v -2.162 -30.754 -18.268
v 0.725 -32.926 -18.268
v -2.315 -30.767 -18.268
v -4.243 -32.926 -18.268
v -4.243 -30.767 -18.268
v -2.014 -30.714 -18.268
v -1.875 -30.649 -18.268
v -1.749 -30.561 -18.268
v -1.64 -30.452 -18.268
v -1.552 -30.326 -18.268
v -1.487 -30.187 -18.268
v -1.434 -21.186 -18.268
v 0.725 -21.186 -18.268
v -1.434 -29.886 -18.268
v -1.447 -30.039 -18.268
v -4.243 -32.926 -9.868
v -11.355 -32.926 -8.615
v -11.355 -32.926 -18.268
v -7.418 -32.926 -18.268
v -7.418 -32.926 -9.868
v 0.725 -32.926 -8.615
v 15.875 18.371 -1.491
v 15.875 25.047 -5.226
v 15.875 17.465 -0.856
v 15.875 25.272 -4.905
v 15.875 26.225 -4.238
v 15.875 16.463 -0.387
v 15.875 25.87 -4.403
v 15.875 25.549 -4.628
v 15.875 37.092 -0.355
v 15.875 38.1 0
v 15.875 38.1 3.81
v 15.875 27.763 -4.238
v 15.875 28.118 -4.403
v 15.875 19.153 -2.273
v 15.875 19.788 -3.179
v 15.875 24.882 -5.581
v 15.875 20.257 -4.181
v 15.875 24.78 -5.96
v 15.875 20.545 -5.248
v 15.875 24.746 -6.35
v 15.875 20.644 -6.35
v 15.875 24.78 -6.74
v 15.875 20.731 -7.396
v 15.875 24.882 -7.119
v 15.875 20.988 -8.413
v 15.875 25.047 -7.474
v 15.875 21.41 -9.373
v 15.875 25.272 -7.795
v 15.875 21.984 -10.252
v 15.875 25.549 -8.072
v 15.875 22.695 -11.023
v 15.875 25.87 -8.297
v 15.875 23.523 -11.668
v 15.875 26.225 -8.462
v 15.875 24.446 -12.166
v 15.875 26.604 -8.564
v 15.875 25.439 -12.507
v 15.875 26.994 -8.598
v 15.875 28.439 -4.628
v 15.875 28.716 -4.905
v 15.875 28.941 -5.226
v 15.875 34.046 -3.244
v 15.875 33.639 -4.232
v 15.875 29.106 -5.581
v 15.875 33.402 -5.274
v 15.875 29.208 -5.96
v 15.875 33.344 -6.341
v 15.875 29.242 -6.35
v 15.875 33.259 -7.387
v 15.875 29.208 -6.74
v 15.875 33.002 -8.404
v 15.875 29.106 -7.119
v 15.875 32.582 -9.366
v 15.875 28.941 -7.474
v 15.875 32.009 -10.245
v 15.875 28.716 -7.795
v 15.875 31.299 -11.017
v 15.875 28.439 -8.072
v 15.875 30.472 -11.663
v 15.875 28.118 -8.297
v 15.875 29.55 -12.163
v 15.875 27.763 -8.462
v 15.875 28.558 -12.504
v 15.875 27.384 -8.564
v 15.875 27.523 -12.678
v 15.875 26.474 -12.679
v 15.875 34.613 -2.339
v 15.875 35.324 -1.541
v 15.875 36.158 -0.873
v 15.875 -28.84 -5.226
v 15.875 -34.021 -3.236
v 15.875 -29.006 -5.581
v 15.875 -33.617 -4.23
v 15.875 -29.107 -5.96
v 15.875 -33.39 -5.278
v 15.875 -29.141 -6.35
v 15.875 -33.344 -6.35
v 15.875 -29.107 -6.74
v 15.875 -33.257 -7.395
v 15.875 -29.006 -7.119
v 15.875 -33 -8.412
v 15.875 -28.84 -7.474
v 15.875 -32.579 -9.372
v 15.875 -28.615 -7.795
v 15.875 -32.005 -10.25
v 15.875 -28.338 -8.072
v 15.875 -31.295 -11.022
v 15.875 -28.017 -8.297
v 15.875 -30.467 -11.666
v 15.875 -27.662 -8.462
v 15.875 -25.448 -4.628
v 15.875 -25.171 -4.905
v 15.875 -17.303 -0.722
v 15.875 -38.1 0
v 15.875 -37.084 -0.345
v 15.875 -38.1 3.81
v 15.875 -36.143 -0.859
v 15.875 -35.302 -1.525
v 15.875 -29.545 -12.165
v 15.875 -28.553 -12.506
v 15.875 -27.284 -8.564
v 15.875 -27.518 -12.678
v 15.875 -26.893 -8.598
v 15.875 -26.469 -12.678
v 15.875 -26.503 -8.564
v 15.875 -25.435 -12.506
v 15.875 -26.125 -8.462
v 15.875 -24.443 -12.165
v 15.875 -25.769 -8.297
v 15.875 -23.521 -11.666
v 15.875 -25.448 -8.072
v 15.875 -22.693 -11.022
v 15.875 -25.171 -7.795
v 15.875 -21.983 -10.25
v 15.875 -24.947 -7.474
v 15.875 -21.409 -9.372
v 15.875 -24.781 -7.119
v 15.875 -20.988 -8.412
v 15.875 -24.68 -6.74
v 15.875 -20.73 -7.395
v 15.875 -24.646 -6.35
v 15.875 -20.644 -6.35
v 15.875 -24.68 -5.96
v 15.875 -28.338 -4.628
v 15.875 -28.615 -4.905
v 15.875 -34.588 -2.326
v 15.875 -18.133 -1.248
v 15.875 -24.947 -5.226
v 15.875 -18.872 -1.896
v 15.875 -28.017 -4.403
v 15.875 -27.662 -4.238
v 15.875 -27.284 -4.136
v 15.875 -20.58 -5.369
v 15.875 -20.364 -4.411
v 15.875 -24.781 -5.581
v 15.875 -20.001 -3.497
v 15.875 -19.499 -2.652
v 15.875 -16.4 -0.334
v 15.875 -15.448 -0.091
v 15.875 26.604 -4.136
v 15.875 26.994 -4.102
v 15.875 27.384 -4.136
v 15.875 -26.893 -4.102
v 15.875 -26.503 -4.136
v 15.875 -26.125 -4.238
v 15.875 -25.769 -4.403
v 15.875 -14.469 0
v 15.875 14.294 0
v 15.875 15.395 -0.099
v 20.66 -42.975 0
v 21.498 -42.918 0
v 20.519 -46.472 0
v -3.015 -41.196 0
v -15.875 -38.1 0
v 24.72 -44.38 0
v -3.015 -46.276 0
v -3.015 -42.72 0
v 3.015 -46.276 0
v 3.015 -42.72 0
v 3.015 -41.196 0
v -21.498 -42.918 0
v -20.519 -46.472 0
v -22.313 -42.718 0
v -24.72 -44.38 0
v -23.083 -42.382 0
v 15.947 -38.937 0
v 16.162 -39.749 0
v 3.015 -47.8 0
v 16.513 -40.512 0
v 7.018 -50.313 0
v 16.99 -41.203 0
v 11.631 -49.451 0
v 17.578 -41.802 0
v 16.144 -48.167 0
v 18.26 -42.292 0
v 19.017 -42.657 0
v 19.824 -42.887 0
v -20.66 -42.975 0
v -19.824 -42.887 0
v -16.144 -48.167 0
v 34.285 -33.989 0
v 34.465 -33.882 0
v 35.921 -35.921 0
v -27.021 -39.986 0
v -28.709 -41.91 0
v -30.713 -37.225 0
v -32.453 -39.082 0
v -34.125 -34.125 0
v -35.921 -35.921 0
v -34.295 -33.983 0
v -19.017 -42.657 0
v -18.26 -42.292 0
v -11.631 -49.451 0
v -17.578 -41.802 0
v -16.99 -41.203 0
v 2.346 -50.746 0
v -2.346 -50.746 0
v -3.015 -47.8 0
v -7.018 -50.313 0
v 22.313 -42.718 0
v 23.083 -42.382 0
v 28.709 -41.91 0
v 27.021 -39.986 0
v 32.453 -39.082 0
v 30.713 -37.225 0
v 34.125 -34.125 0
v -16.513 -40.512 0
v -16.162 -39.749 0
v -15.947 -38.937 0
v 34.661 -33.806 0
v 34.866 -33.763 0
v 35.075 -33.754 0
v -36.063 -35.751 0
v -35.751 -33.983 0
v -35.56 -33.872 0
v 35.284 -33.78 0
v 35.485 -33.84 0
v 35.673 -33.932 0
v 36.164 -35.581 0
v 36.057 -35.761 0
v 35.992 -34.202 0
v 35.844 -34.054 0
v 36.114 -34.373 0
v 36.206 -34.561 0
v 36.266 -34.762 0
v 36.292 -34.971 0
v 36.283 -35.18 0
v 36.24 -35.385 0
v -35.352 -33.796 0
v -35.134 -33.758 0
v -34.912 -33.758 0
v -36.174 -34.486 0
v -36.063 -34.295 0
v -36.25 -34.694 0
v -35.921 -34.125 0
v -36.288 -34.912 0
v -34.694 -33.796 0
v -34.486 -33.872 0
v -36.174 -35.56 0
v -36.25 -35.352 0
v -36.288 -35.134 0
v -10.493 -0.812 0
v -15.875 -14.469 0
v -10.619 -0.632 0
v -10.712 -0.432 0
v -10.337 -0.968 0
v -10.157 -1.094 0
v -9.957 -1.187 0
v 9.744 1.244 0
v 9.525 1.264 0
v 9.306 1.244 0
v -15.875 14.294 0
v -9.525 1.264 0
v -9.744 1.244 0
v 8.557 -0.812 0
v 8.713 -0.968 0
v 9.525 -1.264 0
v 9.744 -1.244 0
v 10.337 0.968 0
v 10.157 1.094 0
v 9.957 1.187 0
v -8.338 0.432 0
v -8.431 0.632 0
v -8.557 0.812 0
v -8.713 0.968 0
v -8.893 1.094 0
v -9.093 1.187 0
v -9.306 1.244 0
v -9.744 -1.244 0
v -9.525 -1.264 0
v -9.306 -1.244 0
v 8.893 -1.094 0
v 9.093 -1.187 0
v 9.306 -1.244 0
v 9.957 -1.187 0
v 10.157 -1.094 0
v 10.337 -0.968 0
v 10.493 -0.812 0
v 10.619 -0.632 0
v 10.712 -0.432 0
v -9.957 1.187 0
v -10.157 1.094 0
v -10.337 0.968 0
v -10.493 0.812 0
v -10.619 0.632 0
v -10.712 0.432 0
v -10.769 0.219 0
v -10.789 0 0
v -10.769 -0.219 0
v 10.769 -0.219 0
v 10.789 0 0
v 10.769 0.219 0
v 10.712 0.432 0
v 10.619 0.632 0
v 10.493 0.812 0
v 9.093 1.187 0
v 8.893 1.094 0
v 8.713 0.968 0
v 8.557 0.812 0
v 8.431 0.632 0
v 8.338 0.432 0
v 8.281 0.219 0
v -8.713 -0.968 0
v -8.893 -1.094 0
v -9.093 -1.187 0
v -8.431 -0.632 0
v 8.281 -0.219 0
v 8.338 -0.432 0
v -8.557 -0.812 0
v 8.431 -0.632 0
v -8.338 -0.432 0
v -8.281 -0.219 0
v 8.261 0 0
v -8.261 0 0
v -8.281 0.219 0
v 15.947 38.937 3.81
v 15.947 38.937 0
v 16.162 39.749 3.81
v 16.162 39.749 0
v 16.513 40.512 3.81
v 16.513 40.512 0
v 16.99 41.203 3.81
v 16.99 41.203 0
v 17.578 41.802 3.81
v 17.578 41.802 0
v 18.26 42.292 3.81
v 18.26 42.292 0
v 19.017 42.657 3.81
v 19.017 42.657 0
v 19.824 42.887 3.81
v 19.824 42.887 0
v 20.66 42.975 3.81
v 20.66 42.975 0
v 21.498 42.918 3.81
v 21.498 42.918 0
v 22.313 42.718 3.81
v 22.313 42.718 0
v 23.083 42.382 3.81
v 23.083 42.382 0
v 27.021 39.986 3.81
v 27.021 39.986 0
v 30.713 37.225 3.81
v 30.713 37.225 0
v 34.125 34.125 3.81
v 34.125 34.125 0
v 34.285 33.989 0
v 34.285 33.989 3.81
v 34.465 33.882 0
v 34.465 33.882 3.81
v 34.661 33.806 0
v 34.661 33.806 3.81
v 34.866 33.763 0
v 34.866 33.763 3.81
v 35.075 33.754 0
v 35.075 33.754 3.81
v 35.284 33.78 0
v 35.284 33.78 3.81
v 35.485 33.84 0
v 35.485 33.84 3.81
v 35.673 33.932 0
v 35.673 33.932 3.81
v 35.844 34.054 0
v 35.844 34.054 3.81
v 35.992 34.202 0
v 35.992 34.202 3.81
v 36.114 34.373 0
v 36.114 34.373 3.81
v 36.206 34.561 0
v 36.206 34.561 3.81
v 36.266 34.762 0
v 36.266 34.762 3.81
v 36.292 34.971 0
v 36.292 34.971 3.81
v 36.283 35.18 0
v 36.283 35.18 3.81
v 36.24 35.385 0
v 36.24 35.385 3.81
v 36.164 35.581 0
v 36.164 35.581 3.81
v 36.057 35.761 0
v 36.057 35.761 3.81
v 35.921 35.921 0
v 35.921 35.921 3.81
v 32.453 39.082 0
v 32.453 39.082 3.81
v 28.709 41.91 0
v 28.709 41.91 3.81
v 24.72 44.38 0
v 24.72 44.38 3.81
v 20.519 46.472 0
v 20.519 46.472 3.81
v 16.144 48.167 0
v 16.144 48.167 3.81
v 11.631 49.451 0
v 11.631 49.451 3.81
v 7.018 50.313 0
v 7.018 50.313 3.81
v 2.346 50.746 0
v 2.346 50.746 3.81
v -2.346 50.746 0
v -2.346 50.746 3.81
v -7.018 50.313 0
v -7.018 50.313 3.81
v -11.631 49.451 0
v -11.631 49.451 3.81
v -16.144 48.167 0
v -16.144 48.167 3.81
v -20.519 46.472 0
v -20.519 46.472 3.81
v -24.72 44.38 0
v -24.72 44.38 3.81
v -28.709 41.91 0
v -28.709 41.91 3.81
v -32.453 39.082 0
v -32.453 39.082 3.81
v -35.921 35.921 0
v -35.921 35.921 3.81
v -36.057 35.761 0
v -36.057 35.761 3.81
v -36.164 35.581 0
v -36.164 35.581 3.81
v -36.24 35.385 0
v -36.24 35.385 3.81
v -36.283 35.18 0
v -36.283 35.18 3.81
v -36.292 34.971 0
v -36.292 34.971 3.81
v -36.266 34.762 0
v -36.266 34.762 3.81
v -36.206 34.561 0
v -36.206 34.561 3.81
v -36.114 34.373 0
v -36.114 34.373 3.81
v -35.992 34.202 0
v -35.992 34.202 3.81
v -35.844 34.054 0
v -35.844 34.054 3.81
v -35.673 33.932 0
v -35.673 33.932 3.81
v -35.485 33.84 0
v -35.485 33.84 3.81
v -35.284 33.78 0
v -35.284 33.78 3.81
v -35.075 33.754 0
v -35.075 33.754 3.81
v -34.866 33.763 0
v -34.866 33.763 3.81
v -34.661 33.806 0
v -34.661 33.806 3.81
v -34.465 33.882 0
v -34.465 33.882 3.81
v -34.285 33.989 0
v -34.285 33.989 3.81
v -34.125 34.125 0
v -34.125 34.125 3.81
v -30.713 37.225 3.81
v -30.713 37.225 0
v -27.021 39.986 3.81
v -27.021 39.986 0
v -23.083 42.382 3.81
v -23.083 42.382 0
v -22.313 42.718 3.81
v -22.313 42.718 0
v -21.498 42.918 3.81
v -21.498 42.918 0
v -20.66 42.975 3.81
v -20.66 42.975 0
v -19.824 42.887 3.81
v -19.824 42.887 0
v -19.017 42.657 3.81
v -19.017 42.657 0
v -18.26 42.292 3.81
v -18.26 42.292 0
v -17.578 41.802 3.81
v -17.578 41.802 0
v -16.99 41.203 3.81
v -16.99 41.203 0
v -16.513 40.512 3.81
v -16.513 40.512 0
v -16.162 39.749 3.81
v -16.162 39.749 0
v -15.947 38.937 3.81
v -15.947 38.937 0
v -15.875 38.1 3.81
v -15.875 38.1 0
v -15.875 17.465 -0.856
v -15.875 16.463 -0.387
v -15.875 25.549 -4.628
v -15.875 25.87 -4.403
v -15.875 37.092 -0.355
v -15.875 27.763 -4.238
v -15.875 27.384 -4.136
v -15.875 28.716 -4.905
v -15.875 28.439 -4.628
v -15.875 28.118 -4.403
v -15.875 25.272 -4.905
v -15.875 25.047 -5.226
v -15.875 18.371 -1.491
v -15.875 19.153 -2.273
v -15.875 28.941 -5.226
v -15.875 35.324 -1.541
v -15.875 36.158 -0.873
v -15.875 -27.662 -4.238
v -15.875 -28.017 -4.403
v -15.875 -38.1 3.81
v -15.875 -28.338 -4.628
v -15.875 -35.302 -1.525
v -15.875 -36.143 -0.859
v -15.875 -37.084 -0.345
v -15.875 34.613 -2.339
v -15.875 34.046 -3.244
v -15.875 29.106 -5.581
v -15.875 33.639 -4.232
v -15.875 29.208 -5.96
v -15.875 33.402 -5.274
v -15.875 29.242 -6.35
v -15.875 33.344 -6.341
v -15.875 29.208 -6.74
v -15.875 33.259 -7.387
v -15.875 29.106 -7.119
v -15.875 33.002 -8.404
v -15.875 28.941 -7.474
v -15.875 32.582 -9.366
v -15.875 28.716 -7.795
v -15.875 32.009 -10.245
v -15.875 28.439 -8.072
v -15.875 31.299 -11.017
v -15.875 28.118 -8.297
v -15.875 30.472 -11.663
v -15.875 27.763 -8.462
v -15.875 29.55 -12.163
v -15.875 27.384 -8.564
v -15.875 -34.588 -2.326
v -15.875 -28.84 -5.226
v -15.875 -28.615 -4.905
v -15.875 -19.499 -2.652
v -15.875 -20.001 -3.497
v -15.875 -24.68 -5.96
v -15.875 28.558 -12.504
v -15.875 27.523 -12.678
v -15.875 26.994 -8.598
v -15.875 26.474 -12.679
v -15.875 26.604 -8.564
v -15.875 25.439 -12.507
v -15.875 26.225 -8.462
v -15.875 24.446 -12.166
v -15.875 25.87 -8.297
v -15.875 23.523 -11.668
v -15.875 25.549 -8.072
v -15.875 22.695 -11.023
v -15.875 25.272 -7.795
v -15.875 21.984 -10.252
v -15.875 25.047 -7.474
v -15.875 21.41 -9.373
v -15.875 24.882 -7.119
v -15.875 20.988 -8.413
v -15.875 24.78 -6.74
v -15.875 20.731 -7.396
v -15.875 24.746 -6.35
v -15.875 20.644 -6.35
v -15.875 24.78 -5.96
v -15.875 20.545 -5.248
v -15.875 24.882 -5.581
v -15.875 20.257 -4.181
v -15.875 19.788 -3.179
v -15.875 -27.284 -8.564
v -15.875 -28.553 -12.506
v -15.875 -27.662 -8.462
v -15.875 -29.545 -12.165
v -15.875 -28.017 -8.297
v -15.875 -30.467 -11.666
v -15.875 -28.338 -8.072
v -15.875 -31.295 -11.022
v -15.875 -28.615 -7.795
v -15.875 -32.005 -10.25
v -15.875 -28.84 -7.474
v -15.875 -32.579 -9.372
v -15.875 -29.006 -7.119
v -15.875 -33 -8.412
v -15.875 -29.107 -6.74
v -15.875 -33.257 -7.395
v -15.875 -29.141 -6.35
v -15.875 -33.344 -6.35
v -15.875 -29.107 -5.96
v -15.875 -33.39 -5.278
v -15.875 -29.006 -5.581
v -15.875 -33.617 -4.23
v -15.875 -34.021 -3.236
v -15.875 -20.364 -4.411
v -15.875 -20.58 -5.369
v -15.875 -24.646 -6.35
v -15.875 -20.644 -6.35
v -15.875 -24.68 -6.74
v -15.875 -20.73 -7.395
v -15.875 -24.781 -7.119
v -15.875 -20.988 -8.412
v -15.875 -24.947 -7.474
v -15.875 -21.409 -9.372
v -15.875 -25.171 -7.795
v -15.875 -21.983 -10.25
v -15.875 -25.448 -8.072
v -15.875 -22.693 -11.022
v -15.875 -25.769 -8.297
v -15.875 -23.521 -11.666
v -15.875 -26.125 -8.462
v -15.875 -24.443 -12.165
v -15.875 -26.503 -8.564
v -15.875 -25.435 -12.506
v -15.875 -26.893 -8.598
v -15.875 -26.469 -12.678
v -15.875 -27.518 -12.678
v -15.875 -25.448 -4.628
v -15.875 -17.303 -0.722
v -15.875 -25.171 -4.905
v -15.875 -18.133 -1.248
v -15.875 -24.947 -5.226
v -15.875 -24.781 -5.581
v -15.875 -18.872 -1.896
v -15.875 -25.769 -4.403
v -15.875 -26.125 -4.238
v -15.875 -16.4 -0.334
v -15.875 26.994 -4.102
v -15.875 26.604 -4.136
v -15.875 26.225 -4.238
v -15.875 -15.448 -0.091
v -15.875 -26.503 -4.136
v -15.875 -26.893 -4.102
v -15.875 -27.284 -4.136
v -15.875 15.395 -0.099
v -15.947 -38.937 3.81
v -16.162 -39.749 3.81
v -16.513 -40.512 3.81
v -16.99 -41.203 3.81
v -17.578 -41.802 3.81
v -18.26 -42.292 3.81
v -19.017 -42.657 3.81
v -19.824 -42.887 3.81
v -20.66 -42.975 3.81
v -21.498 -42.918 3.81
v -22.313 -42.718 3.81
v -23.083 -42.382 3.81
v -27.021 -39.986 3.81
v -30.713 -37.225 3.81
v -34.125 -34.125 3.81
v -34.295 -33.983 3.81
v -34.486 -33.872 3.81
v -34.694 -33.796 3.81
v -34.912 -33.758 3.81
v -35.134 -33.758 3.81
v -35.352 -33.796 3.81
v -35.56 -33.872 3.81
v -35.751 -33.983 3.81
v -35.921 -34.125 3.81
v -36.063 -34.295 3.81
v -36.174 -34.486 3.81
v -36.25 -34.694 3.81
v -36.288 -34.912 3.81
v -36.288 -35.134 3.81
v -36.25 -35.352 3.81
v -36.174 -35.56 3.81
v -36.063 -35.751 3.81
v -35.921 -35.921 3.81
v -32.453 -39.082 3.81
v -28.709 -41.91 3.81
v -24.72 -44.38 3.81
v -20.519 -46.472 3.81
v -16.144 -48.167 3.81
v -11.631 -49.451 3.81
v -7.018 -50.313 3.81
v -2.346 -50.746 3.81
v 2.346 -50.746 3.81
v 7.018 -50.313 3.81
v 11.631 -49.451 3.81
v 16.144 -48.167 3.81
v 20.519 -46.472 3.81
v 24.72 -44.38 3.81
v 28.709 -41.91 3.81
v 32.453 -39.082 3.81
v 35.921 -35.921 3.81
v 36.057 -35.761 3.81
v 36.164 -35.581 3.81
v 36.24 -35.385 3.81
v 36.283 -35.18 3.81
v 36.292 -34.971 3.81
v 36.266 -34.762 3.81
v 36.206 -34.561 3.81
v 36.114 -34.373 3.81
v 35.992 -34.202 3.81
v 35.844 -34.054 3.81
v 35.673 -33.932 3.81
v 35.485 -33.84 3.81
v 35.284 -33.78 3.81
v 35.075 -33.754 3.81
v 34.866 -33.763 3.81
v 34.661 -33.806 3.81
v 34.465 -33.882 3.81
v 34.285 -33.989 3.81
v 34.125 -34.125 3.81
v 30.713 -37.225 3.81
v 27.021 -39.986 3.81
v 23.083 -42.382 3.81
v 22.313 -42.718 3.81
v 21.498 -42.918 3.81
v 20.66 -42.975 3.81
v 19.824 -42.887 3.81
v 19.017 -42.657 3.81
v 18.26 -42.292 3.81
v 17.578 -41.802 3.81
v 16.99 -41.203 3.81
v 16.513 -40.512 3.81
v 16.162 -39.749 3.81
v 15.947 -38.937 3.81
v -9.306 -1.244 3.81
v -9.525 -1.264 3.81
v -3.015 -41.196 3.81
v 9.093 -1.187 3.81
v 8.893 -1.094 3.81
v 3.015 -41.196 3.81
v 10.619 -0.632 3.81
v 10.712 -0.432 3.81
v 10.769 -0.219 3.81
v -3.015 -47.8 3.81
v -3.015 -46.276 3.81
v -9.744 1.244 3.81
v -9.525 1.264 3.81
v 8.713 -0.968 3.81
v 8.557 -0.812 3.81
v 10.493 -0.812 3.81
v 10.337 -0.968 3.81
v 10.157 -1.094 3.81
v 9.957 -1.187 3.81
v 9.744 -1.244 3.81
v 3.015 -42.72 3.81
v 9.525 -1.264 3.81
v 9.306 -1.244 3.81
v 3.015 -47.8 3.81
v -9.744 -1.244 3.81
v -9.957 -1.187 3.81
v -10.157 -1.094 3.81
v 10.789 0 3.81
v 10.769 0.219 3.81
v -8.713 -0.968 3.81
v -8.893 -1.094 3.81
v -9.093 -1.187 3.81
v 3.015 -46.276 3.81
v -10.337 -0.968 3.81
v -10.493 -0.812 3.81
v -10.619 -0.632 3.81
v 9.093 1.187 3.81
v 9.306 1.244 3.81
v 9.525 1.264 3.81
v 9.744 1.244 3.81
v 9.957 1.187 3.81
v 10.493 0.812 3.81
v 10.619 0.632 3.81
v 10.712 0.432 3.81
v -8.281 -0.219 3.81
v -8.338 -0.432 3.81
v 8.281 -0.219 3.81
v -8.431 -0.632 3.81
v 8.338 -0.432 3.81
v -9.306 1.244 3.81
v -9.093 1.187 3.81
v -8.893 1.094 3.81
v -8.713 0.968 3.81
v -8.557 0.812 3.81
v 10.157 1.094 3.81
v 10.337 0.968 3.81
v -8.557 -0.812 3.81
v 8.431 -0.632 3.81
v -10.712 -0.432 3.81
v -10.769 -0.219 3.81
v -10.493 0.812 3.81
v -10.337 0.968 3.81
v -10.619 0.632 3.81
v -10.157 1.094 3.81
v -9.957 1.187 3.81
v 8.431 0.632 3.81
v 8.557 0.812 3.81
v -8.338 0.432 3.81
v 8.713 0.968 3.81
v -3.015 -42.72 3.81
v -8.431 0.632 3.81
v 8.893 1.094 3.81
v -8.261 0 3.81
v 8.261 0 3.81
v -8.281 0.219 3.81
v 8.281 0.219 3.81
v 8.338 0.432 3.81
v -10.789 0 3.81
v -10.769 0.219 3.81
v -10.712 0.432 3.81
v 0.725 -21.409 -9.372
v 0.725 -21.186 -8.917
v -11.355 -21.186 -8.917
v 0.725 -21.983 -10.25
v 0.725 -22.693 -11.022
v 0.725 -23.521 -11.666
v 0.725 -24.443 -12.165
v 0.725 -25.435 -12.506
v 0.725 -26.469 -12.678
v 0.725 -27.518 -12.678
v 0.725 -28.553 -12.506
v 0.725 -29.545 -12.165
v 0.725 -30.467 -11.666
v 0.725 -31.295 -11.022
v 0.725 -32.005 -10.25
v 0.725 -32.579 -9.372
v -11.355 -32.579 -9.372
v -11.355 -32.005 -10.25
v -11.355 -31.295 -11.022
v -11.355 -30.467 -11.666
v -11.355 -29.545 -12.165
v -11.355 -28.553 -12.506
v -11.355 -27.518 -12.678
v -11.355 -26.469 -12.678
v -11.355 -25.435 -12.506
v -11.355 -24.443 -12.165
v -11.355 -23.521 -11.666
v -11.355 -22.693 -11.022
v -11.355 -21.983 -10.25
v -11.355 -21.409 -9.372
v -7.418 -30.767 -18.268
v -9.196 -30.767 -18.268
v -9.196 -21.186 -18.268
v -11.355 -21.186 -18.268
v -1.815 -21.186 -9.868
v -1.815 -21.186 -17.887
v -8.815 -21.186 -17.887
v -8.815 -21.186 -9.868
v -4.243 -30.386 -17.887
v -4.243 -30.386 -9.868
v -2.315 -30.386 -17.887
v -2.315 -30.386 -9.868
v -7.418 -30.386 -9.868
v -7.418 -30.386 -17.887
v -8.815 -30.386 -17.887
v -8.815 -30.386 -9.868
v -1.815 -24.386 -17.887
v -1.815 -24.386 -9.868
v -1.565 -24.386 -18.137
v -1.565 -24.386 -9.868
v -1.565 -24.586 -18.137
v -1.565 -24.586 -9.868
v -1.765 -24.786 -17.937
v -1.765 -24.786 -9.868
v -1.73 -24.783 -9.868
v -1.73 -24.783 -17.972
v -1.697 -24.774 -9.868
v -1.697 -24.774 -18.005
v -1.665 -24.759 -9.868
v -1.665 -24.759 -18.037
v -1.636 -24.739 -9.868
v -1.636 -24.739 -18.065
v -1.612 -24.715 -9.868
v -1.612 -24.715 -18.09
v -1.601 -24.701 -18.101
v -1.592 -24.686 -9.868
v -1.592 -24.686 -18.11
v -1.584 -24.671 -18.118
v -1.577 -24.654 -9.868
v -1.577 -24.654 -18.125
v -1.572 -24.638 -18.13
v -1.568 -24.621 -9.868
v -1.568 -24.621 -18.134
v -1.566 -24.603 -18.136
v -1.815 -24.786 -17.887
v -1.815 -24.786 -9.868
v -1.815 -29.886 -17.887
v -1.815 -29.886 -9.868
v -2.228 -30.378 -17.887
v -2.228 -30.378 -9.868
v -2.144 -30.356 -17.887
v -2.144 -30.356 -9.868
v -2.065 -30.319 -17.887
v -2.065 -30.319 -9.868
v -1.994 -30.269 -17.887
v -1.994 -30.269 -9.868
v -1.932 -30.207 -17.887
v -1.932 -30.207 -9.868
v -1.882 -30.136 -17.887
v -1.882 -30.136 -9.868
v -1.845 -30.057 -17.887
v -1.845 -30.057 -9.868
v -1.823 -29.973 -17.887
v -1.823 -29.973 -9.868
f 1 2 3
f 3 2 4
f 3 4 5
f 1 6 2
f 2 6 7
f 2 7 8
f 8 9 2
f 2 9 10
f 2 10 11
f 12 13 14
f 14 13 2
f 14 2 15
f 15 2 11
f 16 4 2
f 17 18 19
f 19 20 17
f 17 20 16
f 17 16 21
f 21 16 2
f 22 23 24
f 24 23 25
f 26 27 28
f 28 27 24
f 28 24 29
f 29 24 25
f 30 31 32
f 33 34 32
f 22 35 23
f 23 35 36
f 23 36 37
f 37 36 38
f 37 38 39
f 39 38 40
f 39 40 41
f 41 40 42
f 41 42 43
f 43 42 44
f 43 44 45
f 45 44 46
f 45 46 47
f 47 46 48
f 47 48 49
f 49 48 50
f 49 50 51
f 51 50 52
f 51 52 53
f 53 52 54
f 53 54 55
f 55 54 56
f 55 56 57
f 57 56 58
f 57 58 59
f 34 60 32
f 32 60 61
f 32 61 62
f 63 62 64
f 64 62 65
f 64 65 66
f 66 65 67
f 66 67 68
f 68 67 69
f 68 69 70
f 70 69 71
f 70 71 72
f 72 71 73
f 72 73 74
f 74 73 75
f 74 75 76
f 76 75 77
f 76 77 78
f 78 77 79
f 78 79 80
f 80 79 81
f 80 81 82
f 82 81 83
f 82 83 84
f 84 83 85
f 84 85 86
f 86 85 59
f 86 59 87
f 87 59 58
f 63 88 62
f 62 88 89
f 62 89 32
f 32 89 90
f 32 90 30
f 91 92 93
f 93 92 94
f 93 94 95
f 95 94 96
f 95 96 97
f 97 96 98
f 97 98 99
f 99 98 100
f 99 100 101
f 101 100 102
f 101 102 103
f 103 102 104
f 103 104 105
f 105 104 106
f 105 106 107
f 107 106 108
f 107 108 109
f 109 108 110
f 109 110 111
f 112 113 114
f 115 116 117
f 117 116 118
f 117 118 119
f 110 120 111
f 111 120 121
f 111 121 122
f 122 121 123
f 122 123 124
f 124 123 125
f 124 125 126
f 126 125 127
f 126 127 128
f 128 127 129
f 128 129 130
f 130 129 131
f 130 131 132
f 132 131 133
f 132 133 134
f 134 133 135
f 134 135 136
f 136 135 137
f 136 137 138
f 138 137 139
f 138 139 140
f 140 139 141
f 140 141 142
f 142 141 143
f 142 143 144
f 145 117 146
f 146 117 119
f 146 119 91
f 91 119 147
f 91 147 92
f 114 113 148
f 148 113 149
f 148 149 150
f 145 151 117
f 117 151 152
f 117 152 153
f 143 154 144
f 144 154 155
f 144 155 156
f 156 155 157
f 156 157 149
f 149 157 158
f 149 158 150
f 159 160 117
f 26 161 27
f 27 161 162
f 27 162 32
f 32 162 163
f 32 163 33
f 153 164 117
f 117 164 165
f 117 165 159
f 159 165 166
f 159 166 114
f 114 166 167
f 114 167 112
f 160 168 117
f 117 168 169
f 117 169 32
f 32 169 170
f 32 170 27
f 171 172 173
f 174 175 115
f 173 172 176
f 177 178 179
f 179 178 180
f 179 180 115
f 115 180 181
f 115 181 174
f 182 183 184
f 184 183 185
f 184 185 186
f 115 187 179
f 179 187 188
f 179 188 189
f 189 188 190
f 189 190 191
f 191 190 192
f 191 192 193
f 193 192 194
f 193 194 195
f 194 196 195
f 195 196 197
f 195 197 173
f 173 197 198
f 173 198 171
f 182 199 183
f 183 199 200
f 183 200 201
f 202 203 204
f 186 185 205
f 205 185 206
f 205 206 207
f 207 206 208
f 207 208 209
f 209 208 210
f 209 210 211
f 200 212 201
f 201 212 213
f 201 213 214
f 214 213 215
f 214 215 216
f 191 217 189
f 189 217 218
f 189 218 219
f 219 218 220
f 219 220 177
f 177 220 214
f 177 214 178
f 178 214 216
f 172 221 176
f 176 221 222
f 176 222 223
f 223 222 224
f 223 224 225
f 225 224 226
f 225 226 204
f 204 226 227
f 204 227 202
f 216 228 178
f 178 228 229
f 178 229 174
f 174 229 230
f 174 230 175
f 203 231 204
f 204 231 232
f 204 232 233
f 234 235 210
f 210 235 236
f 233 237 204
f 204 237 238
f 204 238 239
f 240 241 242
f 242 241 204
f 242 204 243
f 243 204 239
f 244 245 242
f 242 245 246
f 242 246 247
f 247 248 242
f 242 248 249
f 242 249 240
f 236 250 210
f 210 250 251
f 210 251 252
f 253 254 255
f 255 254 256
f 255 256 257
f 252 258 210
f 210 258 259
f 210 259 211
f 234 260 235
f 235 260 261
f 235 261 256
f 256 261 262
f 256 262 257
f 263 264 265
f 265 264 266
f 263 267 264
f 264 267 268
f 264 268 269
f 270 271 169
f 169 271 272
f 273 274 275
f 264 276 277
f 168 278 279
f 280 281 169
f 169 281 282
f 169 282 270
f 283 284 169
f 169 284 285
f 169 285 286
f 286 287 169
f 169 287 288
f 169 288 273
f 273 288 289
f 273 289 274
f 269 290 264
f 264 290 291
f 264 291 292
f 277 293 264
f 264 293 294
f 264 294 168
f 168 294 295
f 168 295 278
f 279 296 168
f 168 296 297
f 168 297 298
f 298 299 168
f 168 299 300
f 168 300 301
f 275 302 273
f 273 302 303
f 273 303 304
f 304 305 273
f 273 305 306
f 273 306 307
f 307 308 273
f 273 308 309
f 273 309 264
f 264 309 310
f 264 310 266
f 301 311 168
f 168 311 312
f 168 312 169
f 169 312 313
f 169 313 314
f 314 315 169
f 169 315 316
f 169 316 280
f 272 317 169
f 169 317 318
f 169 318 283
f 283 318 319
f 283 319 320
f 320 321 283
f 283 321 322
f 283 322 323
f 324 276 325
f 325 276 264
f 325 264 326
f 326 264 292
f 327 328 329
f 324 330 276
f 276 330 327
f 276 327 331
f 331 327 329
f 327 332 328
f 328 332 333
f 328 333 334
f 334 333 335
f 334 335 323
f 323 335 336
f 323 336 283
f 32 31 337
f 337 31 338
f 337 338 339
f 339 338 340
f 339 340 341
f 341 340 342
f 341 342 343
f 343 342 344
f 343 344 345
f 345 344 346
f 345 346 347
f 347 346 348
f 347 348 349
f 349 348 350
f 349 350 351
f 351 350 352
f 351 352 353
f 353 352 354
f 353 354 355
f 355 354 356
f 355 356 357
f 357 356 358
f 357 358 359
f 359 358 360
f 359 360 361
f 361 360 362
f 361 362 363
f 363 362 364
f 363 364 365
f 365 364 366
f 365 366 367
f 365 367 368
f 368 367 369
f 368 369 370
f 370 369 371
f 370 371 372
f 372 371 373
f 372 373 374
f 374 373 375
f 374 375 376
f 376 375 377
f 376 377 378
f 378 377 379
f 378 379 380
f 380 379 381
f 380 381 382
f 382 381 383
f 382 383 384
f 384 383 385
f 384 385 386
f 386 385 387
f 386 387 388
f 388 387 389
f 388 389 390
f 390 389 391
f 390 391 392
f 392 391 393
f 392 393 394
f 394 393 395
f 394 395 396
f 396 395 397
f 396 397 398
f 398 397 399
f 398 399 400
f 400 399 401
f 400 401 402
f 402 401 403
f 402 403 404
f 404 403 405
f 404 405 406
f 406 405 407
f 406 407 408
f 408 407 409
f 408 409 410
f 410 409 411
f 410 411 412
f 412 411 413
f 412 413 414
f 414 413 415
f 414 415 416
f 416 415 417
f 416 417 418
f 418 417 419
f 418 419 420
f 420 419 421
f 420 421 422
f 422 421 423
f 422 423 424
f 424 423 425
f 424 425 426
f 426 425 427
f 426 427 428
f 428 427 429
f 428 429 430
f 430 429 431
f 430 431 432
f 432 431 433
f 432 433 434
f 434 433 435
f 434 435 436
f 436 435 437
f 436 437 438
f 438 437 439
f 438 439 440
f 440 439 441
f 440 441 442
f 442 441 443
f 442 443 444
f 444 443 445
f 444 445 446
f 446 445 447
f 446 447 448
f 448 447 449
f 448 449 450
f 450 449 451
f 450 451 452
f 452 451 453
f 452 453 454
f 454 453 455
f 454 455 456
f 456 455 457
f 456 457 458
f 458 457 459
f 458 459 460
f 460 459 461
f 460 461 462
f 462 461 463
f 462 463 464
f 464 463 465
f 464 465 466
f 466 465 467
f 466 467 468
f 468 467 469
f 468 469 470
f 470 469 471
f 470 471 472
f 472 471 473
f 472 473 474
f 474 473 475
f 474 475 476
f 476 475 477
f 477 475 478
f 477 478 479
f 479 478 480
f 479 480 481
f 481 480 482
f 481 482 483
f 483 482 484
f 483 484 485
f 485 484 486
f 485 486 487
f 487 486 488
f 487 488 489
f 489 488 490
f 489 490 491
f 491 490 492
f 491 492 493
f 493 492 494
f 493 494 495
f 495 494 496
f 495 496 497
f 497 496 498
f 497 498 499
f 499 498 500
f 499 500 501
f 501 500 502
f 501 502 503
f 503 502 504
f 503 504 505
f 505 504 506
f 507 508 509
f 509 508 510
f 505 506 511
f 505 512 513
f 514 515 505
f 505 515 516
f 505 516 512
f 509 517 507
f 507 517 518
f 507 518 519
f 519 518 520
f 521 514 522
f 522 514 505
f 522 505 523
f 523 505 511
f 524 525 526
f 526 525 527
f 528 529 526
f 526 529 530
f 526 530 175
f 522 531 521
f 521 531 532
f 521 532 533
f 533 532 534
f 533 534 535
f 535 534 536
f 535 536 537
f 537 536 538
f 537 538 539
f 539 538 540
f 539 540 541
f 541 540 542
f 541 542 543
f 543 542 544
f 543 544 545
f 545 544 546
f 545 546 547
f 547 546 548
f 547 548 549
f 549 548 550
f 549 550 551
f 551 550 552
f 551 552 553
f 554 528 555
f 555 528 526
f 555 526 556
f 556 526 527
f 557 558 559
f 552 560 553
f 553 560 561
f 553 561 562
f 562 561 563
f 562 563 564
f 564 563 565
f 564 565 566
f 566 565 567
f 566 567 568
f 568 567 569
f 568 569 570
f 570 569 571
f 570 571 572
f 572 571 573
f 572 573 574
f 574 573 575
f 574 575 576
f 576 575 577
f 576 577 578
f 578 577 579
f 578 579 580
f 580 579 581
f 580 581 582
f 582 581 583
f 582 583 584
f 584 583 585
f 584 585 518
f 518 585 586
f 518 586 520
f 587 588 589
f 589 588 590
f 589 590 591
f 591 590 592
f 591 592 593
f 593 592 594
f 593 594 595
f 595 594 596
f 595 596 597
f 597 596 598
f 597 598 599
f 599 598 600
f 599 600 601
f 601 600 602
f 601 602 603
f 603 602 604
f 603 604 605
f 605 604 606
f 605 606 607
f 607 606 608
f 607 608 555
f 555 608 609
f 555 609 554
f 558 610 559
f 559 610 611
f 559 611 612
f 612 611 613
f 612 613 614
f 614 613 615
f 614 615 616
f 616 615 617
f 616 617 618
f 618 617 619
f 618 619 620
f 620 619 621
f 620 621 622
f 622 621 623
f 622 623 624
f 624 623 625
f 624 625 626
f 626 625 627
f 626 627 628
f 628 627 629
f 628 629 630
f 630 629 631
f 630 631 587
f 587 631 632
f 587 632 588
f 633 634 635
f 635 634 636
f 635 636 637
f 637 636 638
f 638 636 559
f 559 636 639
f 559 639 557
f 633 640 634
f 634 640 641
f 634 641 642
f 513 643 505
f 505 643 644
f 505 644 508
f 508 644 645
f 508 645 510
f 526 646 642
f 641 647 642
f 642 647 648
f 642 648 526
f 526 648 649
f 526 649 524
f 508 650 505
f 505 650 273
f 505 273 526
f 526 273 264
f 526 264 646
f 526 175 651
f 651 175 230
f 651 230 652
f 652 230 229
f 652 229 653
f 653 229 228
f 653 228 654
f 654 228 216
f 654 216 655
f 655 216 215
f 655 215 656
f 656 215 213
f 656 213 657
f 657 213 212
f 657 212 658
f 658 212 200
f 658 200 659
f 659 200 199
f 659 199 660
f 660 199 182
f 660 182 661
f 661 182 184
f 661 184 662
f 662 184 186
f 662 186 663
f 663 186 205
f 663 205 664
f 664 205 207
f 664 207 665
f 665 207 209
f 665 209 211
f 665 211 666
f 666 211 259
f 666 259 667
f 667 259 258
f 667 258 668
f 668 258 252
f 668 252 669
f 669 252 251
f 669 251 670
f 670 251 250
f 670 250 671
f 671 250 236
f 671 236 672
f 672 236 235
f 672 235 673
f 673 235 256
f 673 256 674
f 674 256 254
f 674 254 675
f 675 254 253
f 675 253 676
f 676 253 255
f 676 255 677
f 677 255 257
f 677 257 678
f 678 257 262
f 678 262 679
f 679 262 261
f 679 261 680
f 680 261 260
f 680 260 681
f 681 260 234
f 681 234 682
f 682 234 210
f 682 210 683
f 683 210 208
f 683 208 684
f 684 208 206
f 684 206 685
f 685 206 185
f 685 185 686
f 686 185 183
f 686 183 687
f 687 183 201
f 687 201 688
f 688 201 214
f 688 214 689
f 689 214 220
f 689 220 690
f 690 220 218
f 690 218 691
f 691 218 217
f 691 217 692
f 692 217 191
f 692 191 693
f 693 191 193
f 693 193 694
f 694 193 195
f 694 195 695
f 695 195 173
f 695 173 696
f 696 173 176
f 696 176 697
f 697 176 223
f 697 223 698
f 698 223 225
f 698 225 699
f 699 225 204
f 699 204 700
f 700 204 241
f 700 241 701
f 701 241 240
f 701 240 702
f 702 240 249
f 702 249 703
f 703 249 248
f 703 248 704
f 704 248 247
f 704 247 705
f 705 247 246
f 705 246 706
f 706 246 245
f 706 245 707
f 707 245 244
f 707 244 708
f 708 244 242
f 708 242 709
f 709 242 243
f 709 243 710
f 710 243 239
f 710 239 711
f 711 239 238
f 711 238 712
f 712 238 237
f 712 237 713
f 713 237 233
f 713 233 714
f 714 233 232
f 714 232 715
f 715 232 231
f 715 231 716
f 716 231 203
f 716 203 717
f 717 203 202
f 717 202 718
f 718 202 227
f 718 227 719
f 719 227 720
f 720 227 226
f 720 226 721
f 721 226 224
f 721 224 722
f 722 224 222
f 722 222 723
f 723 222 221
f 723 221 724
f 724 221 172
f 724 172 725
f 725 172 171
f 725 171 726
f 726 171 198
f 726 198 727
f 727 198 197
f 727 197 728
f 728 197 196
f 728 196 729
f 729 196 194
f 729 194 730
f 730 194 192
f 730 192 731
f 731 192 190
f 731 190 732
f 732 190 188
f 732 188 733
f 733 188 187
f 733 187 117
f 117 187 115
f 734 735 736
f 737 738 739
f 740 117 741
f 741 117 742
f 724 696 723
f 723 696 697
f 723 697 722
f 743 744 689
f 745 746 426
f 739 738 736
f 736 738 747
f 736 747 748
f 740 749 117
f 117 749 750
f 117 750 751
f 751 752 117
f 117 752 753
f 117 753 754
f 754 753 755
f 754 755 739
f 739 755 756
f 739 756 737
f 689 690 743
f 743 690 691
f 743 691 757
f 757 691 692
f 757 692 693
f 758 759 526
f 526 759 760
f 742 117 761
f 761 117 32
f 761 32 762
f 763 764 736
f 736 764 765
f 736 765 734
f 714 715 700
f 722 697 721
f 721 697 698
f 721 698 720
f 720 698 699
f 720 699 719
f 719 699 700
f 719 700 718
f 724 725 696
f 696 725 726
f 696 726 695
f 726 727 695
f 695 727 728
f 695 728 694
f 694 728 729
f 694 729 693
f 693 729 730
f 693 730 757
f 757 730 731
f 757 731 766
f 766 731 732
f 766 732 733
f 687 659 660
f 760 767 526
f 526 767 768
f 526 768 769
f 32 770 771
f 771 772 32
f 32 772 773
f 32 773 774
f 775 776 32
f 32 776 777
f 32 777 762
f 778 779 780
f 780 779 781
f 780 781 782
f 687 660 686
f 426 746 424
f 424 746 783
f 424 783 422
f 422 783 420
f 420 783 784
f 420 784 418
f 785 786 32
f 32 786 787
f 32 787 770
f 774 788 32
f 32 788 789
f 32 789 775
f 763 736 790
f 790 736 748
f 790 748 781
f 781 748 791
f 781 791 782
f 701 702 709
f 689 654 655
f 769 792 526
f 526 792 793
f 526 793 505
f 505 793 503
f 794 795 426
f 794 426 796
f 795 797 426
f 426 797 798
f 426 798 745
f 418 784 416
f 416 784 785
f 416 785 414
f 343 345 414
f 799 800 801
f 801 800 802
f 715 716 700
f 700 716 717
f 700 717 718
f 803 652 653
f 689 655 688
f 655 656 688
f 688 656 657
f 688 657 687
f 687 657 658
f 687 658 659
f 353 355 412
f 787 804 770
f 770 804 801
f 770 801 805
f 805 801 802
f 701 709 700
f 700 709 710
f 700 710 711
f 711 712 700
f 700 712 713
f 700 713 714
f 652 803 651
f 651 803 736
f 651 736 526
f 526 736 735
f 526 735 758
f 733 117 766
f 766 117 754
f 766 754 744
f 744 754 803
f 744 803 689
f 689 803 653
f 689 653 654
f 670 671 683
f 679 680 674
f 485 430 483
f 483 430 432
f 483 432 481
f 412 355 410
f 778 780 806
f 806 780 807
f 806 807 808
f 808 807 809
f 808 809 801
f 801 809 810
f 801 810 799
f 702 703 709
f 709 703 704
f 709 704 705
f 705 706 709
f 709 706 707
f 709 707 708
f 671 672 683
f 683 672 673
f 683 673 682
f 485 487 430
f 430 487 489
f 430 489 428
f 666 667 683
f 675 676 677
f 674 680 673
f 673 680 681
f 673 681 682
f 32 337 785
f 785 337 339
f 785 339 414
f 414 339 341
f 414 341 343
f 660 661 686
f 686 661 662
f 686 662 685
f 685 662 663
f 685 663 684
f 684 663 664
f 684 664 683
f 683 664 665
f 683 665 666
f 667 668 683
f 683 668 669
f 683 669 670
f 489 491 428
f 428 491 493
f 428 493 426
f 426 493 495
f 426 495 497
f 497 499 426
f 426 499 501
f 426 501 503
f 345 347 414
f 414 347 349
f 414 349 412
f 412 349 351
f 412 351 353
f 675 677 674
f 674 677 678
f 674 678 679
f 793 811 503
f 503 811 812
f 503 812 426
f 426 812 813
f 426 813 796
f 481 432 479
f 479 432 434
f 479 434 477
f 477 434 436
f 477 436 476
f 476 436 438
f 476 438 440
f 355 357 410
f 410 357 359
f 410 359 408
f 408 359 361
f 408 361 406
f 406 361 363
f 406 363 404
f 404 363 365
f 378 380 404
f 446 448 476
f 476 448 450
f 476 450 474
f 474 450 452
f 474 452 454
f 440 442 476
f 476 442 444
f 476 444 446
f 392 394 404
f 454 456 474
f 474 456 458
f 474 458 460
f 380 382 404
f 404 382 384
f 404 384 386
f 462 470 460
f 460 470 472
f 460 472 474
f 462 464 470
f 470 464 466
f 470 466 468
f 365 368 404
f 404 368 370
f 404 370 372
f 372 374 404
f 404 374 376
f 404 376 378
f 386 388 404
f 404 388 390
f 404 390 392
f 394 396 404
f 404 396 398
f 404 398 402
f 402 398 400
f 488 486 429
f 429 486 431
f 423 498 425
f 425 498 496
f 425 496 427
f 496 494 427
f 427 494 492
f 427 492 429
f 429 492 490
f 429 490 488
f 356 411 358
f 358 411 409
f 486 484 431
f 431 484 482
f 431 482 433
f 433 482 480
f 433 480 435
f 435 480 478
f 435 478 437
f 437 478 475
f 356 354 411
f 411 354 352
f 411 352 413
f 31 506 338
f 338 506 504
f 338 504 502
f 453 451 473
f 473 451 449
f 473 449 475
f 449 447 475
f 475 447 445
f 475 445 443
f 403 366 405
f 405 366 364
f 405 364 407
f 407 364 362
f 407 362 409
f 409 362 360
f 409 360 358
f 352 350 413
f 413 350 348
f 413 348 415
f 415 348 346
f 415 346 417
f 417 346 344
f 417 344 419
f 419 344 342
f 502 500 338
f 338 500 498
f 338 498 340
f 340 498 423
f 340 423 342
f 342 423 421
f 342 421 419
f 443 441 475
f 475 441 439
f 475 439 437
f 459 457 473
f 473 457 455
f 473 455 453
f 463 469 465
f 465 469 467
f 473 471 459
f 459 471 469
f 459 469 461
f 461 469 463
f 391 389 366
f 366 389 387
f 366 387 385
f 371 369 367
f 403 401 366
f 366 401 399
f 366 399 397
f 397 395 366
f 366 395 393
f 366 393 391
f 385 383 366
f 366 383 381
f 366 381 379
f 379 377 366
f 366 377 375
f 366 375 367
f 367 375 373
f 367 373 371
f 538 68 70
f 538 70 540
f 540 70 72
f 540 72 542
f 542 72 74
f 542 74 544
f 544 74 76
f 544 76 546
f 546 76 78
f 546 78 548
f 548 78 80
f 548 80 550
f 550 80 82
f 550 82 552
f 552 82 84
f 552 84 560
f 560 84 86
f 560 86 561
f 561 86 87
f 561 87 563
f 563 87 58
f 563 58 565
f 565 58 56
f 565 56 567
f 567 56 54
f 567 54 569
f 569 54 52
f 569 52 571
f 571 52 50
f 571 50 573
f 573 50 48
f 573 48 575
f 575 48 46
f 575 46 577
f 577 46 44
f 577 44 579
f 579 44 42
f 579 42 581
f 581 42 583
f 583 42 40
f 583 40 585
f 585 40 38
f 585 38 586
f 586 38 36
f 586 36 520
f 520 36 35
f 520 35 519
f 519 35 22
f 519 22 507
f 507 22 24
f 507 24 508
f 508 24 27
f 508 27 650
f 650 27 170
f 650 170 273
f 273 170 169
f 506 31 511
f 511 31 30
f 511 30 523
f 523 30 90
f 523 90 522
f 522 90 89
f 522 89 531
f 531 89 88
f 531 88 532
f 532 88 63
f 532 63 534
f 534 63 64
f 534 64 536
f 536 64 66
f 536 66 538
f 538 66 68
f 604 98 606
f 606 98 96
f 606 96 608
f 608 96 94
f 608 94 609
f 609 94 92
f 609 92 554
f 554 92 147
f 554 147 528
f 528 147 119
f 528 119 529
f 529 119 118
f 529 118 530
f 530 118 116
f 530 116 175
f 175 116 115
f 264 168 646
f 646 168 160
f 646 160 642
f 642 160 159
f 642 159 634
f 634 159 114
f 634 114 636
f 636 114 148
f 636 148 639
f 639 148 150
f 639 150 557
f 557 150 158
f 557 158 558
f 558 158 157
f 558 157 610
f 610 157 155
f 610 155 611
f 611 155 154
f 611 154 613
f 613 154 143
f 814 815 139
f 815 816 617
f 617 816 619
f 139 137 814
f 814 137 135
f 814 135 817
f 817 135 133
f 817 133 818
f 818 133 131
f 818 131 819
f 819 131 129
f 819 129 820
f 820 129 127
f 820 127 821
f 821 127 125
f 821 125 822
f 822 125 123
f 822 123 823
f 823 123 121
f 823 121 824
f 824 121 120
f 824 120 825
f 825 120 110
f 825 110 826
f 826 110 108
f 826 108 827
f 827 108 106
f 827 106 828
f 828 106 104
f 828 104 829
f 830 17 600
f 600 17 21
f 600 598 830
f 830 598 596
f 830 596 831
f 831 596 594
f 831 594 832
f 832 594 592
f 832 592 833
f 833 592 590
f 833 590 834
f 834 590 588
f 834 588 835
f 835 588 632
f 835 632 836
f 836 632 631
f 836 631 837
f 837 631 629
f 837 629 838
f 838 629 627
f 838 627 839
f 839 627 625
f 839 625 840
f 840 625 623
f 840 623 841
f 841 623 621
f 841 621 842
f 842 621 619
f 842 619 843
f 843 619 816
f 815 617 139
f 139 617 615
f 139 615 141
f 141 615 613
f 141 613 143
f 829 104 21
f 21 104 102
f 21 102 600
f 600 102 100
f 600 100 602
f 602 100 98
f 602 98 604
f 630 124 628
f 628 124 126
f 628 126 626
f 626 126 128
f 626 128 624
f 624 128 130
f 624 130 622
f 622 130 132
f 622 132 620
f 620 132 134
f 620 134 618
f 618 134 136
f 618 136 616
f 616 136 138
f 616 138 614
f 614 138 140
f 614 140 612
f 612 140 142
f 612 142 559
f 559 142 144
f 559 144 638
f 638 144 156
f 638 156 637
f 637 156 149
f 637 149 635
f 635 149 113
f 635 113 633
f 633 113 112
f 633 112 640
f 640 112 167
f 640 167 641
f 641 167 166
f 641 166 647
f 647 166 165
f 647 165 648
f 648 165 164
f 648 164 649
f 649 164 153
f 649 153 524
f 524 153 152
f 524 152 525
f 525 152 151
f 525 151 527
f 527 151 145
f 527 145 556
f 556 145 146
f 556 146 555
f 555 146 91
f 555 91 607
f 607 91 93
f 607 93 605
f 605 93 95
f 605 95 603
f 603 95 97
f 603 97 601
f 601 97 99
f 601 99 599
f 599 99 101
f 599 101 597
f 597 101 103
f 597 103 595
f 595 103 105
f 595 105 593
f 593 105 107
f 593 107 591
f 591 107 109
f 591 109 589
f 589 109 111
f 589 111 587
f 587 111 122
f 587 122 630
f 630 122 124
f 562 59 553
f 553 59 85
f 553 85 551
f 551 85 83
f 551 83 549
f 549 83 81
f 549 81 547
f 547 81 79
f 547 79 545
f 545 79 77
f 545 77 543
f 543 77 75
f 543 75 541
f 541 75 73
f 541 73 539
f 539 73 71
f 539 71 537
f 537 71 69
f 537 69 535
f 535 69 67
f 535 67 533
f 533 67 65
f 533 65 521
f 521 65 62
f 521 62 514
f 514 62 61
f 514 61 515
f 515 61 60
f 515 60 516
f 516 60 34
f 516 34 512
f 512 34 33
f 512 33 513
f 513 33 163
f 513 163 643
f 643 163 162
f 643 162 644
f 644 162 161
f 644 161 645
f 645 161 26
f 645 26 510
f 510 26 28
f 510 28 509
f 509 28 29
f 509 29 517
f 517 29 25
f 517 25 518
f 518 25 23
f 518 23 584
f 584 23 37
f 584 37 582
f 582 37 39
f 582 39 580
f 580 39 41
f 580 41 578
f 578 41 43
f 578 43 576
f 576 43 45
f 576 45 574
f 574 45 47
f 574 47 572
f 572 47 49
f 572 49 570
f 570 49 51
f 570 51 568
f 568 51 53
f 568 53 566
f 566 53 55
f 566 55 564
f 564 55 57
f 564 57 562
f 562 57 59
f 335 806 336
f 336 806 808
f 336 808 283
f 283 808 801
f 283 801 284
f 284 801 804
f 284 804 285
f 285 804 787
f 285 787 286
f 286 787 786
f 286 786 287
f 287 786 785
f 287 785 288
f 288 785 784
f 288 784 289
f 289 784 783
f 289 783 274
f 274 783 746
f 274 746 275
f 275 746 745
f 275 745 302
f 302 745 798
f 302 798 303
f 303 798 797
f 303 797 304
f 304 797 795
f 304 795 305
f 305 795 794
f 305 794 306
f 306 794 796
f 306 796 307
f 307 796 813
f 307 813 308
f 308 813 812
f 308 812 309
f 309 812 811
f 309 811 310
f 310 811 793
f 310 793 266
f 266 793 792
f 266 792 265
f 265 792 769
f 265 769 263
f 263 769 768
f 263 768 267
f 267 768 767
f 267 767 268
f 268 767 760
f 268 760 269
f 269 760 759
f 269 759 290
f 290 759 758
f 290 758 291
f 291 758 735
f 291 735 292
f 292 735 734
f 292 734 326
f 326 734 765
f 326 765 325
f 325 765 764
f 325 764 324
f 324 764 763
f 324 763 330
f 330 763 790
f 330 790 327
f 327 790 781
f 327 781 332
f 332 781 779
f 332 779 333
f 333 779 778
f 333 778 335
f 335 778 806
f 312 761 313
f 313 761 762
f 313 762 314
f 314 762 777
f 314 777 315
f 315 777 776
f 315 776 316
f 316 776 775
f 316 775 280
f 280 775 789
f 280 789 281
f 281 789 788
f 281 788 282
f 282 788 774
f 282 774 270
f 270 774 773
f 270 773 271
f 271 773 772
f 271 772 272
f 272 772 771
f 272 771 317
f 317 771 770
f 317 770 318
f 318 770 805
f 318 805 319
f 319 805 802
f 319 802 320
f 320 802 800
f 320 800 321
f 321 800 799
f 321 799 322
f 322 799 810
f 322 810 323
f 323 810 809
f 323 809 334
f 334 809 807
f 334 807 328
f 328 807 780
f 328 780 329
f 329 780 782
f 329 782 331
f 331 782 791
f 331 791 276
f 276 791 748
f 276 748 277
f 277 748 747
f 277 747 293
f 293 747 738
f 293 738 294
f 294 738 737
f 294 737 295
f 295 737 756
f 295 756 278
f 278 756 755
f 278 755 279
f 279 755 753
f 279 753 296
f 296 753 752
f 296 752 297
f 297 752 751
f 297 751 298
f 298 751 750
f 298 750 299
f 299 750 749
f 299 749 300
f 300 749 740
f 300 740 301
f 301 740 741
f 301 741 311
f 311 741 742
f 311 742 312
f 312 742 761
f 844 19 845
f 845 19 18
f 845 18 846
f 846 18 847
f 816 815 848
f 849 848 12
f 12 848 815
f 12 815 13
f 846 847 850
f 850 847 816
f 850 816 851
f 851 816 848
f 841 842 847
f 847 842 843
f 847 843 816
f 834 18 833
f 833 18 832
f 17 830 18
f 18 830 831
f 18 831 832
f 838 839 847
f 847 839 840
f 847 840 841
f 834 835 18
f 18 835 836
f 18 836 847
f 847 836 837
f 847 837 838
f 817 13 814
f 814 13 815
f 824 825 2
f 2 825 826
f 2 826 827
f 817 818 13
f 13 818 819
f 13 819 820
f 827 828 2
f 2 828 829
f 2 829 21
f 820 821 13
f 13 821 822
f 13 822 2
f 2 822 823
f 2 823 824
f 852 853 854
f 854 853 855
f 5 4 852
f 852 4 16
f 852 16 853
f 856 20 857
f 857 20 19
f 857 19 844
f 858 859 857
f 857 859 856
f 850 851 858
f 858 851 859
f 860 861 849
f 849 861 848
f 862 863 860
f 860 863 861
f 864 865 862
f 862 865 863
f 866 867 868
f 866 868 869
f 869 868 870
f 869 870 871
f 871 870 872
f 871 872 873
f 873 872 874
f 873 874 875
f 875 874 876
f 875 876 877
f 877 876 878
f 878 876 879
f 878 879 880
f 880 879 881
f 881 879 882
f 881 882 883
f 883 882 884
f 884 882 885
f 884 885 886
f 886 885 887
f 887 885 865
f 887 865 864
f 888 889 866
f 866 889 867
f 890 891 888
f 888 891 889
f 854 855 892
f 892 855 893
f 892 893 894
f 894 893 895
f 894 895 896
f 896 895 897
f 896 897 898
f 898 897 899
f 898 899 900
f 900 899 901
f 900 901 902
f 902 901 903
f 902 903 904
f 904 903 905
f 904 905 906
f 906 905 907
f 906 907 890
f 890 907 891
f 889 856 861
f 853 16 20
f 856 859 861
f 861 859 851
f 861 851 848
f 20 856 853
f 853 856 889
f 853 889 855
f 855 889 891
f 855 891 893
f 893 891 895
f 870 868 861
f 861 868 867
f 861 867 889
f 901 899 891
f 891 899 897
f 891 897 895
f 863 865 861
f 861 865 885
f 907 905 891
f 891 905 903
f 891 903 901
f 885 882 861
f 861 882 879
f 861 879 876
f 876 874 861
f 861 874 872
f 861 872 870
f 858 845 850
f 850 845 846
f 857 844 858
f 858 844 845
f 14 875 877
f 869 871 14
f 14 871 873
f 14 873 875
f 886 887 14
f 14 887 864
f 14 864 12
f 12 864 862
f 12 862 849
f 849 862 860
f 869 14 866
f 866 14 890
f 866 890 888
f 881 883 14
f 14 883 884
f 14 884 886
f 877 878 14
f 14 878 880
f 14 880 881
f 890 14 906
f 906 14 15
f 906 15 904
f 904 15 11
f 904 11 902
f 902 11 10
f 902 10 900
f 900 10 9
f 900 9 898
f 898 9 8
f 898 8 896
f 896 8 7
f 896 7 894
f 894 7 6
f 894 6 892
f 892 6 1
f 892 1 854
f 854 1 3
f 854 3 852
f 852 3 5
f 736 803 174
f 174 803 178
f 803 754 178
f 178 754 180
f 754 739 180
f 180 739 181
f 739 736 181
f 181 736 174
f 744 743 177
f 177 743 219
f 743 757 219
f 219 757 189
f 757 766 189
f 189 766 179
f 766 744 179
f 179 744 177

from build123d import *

# Parameters (mm, degrees)
MAIN_BODY_DEPTH                  = 3.81
CROSS_SCREW_BOSSES_DEPTH         = 31.75
F_8_CLEARANCE_HOLE1_D            = 4.4958
BALLOON_MONOFILAMENT_HOLE_D      = 2.5273
PARACHUTE_MONOFILAMENT_HOLE_D    = 2.5273
SKETCH21_W                       = 12.08
SKETCH21_H                       = 11.74
HOT_WIRE_CUTTER_HOLDER_DEPTH     = 9.67
CUT_EXTRUDE10_START              = -1.27
CUT_EXTRUDE10_DEPTH              = 63.383576094
CHAMFER8_SIZE                    = 0.381
SKETCH22_W                       = 6.029522694
SKETCH22_H                       = 1.524
SATELLITE_CABLE_MANAGEMENT_DEPTH = 66.050272386


with BuildPart() as part:
    # Sketch3 → Main body (new body)
    with BuildSketch(Plane.XY):
        with BuildLine():
            Line((-15.875, -38.1), (-15.875, 38.1))
            ThreePointArc((-15.875, 38.1), (-18.260491841, 42.291797068), (-23.082694008, 42.38179842))
            ThreePointArc((-23.082694008, 42.38179842), (-28.900226452, 38.649767283), (-34.12497326, 34.12497326))
            ThreePointArc((-34.12497326, 34.12497326), (-35.921024484, 34.12497326), (-35.921024484, 35.921024484))
            ThreePointArc((-35.921024484, 35.921024484), (0, 50.8), (35.921024484, 35.921024484))
            ThreePointArc((35.921024484, 35.921024484), (35.921024484, 34.12497326), (34.12497326, 34.12497326))
            ThreePointArc((34.12497326, 34.12497326), (28.900226452, 38.649767283), (23.082694008, 42.38179842))
            ThreePointArc((23.082694008, 42.38179842), (18.260491841, 42.291797068), (15.875, 38.1))
            Line((15.875, 38.1), (15.875, -38.1))
            ThreePointArc((15.875, -38.1), (18.260491841, -42.291797068), (23.082694008, -42.38179842))
            ThreePointArc((23.082694008, -42.38179842), (28.900226452, -38.649767283), (34.12497326, -34.12497326))
            ThreePointArc((34.12497326, -34.12497326), (35.921024484, -34.12497326), (35.921024484, -35.921024484))
            ThreePointArc((35.921024484, -35.921024484), (0, -50.8), (-35.921024484, -35.921024484))
            ThreePointArc((-35.921024484, -35.921024484), (-35.921024484, -34.12497326), (-34.12497326, -34.12497326))
            ThreePointArc((-34.12497326, -34.12497326), (-28.900226452, -38.649767283), (-23.082694008, -42.38179842))
            ThreePointArc((-23.082694008, -42.38179842), (-18.260491841, -42.291797068), (-15.875, -38.1))
        make_face()
    extrude(amount=MAIN_BODY_DEPTH)

    # Sketch5 → Cross screw bosses (add)
    with BuildSketch(Plane(origin=(15.875, 0, 0), x_dir=(0, 0, -1), z_dir=(1, 0, 0))):
        with BuildLine():
            Line((0, 38.1), (0, 26.99385))
            Line((0, 26.99385), (0, 14.29385))
            ThreePointArc((0, 14.29385), (1.86498297, 18.77886703), (6.35, 20.64385))
            ThreePointArc((6.35, 20.64385), (12.699998494, 26.998224058), (6.341251887, 33.343843974))
            ThreePointArc((6.341251887, 33.343843974), (2.338844583, 34.612930799), (0, 38.1))
        make_face()
        with BuildLine():
            ThreePointArc((6.261703048, -20.644463916), (1.864650947, -18.840779739), (0, -14.469233029))
            Line((0, -14.469233029), (0, -26.99385))
            Line((0, -26.99385), (0, -38.1))
            ThreePointArc((0, -38.1), (2.217611083, -34.670801888), (6.077775616, -33.338012189))
            ThreePointArc((6.077775616, -33.338012189), (6.213919542, -33.33945129), (6.35, -33.34385))
            ThreePointArc((6.35, -33.34385), (12.7, -26.99385), (6.35, -20.64385))
            ThreePointArc((6.35, -20.64385), (6.305852606, -20.644312569), (6.261703048, -20.644463916))
        make_face()
    extrude(amount=-CROSS_SCREW_BOSSES_DEPTH)

    # 8 Clearance Hole1 (through all)
    with Locations(Plane(origin=(15.875, 0, 0), x_dir=(0, 0, -1), z_dir=(1, 0, 0))):
        with Locations((6.35, 26.99385), (6.35, -26.893399733)):
            Hole(F_8_CLEARANCE_HOLE1_D / 2)

    # Balloon monofilament hole (through all)
    with Locations(Plane.XY.offset(3.81)):
        with Locations((-9.525, 0)):
            Hole(BALLOON_MONOFILAMENT_HOLE_D / 2)

    # Parachute monofilament hole (through all)
    with Locations(Plane.XY.offset(3.81)):
        with Locations((9.525, 0)):
            Hole(PARACHUTE_MONOFILAMENT_HOLE_D / 2)

    # Sketch21 → Hot wire cutter holder (add)
    with BuildSketch(Plane.XY.offset(-8.5979)):
        with Locations((-5.315, -27.056)):
            Rectangle(SKETCH21_W, SKETCH21_H)
    extrude(amount=-HOT_WIRE_CUTTER_HOLDER_DEPTH)

    # Sketch21_10 → Cut-Extrude10 (cut, through all)
    with BuildSketch(Plane.XY.offset(-8.5979).offset(CUT_EXTRUDE10_START)):
        with BuildLine():
            Line((-4.243, -30.386), (-2.315, -30.386))
            ThreePointArc((-2.315, -30.386), (-1.961446609, -30.239553391), (-1.815, -29.886))
            Line((-1.815, -29.886), (-1.815, -24.786))
            Line((-1.815, -24.786), (-1.765, -24.786))
            ThreePointArc((-1.765, -24.786), (-1.623578644, -24.727421356), (-1.565, -24.586))
            Line((-1.565, -24.586), (-1.565, -24.386))
            Line((-1.565, -24.386), (-1.815, -24.386))
            Line((-1.815, -24.386), (-1.815, -21.186))
            Line((-1.815, -21.186), (-8.815, -21.186))
            Line((-8.815, -21.186), (-8.815, -30.386))
            Line((-8.815, -30.386), (-7.418, -30.386))
            Line((-7.418, -30.386), (-7.418, -32.926))
            Line((-7.418, -32.926), (-4.243, -32.926))
            Line((-4.243, -32.926), (-4.243, -30.386))
        make_face()
    extrude(amount=-CUT_EXTRUDE10_DEPTH, mode=Mode.SUBTRACT)

    # Chamfer8
    chamfer8_edges = [part.edges().sort_by_distance(p)[0] for p in [
        (-8.1165, -30.386, -18.2679),
        (-8.815, -25.786, -18.2679),
        (-3.279, -30.386, -18.2679),
        (-1.961446609, -30.239553391, -18.2679),
        (-1.815, -27.336, -18.2679),
    ]]
    chamfer(chamfer8_edges, length=CHAMFER8_SIZE)

    # Sketch22 → satellite cable management (cut, through all)
    with BuildSketch(Plane(origin=(0, 0, 0), x_dir=(-1, 0, 0), z_dir=(0, 0, -1))):
        with Locations((0, -47.038383029)):
            Rectangle(SKETCH22_W, SKETCH22_H)
        with Locations((0, -41.958383029)):
            Rectangle(SKETCH22_W, SKETCH22_H)
    extrude(amount=-SATELLITE_CABLE_MANAGEMENT_DEPTH, mode=Mode.SUBTRACT)


solid = part.part
